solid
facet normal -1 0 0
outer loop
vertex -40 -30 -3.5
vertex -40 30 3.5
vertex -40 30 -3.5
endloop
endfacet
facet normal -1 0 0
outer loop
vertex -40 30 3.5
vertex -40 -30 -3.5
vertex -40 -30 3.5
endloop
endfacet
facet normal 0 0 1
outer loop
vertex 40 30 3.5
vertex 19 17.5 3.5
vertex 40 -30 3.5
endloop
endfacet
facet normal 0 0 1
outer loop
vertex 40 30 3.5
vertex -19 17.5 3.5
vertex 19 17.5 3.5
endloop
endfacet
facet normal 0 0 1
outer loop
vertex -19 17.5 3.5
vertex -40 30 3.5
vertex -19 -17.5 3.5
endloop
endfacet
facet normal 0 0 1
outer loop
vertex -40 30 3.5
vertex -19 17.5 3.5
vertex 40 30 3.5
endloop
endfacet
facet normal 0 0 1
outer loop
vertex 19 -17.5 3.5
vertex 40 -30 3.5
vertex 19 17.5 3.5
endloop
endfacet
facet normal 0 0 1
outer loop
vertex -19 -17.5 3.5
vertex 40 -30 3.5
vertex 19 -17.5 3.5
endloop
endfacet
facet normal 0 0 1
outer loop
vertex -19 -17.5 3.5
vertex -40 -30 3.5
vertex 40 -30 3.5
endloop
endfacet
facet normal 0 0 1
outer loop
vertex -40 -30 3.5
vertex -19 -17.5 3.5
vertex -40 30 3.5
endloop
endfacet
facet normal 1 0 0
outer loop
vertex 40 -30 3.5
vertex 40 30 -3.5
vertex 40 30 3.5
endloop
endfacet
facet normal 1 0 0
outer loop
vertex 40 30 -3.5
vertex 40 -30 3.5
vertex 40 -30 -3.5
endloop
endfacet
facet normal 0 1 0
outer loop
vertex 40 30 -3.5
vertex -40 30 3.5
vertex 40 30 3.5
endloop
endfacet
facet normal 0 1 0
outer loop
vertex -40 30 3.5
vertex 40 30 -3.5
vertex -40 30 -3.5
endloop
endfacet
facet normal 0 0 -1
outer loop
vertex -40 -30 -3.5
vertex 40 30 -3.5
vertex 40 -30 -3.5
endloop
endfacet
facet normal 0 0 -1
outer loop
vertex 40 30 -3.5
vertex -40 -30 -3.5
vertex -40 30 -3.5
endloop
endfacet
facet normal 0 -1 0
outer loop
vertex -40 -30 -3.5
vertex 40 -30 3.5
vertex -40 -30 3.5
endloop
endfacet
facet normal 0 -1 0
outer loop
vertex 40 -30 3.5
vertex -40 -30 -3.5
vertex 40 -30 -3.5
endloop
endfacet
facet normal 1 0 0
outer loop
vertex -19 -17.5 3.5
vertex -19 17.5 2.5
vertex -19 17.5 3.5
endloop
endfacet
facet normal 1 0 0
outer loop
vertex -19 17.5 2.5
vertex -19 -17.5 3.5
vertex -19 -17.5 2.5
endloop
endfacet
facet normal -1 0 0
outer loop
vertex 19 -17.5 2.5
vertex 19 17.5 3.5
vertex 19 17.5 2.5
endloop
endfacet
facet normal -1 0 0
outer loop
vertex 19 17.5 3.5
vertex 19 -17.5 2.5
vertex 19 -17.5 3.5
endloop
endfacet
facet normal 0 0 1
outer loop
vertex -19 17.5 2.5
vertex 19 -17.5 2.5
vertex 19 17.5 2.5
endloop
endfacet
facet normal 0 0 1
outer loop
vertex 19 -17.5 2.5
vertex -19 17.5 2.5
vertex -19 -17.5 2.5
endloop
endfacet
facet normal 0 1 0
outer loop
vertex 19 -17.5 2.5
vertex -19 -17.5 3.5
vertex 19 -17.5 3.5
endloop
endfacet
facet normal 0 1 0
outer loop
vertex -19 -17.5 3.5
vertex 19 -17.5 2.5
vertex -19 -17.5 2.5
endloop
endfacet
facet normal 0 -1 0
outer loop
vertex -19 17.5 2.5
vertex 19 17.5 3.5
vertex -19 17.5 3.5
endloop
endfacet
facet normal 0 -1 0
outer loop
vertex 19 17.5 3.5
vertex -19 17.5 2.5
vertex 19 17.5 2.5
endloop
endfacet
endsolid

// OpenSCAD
difference() {

cube([80,60,7], center=true);
    translate([0,0,4]) cube([38,35,3], center=true);
    
}
